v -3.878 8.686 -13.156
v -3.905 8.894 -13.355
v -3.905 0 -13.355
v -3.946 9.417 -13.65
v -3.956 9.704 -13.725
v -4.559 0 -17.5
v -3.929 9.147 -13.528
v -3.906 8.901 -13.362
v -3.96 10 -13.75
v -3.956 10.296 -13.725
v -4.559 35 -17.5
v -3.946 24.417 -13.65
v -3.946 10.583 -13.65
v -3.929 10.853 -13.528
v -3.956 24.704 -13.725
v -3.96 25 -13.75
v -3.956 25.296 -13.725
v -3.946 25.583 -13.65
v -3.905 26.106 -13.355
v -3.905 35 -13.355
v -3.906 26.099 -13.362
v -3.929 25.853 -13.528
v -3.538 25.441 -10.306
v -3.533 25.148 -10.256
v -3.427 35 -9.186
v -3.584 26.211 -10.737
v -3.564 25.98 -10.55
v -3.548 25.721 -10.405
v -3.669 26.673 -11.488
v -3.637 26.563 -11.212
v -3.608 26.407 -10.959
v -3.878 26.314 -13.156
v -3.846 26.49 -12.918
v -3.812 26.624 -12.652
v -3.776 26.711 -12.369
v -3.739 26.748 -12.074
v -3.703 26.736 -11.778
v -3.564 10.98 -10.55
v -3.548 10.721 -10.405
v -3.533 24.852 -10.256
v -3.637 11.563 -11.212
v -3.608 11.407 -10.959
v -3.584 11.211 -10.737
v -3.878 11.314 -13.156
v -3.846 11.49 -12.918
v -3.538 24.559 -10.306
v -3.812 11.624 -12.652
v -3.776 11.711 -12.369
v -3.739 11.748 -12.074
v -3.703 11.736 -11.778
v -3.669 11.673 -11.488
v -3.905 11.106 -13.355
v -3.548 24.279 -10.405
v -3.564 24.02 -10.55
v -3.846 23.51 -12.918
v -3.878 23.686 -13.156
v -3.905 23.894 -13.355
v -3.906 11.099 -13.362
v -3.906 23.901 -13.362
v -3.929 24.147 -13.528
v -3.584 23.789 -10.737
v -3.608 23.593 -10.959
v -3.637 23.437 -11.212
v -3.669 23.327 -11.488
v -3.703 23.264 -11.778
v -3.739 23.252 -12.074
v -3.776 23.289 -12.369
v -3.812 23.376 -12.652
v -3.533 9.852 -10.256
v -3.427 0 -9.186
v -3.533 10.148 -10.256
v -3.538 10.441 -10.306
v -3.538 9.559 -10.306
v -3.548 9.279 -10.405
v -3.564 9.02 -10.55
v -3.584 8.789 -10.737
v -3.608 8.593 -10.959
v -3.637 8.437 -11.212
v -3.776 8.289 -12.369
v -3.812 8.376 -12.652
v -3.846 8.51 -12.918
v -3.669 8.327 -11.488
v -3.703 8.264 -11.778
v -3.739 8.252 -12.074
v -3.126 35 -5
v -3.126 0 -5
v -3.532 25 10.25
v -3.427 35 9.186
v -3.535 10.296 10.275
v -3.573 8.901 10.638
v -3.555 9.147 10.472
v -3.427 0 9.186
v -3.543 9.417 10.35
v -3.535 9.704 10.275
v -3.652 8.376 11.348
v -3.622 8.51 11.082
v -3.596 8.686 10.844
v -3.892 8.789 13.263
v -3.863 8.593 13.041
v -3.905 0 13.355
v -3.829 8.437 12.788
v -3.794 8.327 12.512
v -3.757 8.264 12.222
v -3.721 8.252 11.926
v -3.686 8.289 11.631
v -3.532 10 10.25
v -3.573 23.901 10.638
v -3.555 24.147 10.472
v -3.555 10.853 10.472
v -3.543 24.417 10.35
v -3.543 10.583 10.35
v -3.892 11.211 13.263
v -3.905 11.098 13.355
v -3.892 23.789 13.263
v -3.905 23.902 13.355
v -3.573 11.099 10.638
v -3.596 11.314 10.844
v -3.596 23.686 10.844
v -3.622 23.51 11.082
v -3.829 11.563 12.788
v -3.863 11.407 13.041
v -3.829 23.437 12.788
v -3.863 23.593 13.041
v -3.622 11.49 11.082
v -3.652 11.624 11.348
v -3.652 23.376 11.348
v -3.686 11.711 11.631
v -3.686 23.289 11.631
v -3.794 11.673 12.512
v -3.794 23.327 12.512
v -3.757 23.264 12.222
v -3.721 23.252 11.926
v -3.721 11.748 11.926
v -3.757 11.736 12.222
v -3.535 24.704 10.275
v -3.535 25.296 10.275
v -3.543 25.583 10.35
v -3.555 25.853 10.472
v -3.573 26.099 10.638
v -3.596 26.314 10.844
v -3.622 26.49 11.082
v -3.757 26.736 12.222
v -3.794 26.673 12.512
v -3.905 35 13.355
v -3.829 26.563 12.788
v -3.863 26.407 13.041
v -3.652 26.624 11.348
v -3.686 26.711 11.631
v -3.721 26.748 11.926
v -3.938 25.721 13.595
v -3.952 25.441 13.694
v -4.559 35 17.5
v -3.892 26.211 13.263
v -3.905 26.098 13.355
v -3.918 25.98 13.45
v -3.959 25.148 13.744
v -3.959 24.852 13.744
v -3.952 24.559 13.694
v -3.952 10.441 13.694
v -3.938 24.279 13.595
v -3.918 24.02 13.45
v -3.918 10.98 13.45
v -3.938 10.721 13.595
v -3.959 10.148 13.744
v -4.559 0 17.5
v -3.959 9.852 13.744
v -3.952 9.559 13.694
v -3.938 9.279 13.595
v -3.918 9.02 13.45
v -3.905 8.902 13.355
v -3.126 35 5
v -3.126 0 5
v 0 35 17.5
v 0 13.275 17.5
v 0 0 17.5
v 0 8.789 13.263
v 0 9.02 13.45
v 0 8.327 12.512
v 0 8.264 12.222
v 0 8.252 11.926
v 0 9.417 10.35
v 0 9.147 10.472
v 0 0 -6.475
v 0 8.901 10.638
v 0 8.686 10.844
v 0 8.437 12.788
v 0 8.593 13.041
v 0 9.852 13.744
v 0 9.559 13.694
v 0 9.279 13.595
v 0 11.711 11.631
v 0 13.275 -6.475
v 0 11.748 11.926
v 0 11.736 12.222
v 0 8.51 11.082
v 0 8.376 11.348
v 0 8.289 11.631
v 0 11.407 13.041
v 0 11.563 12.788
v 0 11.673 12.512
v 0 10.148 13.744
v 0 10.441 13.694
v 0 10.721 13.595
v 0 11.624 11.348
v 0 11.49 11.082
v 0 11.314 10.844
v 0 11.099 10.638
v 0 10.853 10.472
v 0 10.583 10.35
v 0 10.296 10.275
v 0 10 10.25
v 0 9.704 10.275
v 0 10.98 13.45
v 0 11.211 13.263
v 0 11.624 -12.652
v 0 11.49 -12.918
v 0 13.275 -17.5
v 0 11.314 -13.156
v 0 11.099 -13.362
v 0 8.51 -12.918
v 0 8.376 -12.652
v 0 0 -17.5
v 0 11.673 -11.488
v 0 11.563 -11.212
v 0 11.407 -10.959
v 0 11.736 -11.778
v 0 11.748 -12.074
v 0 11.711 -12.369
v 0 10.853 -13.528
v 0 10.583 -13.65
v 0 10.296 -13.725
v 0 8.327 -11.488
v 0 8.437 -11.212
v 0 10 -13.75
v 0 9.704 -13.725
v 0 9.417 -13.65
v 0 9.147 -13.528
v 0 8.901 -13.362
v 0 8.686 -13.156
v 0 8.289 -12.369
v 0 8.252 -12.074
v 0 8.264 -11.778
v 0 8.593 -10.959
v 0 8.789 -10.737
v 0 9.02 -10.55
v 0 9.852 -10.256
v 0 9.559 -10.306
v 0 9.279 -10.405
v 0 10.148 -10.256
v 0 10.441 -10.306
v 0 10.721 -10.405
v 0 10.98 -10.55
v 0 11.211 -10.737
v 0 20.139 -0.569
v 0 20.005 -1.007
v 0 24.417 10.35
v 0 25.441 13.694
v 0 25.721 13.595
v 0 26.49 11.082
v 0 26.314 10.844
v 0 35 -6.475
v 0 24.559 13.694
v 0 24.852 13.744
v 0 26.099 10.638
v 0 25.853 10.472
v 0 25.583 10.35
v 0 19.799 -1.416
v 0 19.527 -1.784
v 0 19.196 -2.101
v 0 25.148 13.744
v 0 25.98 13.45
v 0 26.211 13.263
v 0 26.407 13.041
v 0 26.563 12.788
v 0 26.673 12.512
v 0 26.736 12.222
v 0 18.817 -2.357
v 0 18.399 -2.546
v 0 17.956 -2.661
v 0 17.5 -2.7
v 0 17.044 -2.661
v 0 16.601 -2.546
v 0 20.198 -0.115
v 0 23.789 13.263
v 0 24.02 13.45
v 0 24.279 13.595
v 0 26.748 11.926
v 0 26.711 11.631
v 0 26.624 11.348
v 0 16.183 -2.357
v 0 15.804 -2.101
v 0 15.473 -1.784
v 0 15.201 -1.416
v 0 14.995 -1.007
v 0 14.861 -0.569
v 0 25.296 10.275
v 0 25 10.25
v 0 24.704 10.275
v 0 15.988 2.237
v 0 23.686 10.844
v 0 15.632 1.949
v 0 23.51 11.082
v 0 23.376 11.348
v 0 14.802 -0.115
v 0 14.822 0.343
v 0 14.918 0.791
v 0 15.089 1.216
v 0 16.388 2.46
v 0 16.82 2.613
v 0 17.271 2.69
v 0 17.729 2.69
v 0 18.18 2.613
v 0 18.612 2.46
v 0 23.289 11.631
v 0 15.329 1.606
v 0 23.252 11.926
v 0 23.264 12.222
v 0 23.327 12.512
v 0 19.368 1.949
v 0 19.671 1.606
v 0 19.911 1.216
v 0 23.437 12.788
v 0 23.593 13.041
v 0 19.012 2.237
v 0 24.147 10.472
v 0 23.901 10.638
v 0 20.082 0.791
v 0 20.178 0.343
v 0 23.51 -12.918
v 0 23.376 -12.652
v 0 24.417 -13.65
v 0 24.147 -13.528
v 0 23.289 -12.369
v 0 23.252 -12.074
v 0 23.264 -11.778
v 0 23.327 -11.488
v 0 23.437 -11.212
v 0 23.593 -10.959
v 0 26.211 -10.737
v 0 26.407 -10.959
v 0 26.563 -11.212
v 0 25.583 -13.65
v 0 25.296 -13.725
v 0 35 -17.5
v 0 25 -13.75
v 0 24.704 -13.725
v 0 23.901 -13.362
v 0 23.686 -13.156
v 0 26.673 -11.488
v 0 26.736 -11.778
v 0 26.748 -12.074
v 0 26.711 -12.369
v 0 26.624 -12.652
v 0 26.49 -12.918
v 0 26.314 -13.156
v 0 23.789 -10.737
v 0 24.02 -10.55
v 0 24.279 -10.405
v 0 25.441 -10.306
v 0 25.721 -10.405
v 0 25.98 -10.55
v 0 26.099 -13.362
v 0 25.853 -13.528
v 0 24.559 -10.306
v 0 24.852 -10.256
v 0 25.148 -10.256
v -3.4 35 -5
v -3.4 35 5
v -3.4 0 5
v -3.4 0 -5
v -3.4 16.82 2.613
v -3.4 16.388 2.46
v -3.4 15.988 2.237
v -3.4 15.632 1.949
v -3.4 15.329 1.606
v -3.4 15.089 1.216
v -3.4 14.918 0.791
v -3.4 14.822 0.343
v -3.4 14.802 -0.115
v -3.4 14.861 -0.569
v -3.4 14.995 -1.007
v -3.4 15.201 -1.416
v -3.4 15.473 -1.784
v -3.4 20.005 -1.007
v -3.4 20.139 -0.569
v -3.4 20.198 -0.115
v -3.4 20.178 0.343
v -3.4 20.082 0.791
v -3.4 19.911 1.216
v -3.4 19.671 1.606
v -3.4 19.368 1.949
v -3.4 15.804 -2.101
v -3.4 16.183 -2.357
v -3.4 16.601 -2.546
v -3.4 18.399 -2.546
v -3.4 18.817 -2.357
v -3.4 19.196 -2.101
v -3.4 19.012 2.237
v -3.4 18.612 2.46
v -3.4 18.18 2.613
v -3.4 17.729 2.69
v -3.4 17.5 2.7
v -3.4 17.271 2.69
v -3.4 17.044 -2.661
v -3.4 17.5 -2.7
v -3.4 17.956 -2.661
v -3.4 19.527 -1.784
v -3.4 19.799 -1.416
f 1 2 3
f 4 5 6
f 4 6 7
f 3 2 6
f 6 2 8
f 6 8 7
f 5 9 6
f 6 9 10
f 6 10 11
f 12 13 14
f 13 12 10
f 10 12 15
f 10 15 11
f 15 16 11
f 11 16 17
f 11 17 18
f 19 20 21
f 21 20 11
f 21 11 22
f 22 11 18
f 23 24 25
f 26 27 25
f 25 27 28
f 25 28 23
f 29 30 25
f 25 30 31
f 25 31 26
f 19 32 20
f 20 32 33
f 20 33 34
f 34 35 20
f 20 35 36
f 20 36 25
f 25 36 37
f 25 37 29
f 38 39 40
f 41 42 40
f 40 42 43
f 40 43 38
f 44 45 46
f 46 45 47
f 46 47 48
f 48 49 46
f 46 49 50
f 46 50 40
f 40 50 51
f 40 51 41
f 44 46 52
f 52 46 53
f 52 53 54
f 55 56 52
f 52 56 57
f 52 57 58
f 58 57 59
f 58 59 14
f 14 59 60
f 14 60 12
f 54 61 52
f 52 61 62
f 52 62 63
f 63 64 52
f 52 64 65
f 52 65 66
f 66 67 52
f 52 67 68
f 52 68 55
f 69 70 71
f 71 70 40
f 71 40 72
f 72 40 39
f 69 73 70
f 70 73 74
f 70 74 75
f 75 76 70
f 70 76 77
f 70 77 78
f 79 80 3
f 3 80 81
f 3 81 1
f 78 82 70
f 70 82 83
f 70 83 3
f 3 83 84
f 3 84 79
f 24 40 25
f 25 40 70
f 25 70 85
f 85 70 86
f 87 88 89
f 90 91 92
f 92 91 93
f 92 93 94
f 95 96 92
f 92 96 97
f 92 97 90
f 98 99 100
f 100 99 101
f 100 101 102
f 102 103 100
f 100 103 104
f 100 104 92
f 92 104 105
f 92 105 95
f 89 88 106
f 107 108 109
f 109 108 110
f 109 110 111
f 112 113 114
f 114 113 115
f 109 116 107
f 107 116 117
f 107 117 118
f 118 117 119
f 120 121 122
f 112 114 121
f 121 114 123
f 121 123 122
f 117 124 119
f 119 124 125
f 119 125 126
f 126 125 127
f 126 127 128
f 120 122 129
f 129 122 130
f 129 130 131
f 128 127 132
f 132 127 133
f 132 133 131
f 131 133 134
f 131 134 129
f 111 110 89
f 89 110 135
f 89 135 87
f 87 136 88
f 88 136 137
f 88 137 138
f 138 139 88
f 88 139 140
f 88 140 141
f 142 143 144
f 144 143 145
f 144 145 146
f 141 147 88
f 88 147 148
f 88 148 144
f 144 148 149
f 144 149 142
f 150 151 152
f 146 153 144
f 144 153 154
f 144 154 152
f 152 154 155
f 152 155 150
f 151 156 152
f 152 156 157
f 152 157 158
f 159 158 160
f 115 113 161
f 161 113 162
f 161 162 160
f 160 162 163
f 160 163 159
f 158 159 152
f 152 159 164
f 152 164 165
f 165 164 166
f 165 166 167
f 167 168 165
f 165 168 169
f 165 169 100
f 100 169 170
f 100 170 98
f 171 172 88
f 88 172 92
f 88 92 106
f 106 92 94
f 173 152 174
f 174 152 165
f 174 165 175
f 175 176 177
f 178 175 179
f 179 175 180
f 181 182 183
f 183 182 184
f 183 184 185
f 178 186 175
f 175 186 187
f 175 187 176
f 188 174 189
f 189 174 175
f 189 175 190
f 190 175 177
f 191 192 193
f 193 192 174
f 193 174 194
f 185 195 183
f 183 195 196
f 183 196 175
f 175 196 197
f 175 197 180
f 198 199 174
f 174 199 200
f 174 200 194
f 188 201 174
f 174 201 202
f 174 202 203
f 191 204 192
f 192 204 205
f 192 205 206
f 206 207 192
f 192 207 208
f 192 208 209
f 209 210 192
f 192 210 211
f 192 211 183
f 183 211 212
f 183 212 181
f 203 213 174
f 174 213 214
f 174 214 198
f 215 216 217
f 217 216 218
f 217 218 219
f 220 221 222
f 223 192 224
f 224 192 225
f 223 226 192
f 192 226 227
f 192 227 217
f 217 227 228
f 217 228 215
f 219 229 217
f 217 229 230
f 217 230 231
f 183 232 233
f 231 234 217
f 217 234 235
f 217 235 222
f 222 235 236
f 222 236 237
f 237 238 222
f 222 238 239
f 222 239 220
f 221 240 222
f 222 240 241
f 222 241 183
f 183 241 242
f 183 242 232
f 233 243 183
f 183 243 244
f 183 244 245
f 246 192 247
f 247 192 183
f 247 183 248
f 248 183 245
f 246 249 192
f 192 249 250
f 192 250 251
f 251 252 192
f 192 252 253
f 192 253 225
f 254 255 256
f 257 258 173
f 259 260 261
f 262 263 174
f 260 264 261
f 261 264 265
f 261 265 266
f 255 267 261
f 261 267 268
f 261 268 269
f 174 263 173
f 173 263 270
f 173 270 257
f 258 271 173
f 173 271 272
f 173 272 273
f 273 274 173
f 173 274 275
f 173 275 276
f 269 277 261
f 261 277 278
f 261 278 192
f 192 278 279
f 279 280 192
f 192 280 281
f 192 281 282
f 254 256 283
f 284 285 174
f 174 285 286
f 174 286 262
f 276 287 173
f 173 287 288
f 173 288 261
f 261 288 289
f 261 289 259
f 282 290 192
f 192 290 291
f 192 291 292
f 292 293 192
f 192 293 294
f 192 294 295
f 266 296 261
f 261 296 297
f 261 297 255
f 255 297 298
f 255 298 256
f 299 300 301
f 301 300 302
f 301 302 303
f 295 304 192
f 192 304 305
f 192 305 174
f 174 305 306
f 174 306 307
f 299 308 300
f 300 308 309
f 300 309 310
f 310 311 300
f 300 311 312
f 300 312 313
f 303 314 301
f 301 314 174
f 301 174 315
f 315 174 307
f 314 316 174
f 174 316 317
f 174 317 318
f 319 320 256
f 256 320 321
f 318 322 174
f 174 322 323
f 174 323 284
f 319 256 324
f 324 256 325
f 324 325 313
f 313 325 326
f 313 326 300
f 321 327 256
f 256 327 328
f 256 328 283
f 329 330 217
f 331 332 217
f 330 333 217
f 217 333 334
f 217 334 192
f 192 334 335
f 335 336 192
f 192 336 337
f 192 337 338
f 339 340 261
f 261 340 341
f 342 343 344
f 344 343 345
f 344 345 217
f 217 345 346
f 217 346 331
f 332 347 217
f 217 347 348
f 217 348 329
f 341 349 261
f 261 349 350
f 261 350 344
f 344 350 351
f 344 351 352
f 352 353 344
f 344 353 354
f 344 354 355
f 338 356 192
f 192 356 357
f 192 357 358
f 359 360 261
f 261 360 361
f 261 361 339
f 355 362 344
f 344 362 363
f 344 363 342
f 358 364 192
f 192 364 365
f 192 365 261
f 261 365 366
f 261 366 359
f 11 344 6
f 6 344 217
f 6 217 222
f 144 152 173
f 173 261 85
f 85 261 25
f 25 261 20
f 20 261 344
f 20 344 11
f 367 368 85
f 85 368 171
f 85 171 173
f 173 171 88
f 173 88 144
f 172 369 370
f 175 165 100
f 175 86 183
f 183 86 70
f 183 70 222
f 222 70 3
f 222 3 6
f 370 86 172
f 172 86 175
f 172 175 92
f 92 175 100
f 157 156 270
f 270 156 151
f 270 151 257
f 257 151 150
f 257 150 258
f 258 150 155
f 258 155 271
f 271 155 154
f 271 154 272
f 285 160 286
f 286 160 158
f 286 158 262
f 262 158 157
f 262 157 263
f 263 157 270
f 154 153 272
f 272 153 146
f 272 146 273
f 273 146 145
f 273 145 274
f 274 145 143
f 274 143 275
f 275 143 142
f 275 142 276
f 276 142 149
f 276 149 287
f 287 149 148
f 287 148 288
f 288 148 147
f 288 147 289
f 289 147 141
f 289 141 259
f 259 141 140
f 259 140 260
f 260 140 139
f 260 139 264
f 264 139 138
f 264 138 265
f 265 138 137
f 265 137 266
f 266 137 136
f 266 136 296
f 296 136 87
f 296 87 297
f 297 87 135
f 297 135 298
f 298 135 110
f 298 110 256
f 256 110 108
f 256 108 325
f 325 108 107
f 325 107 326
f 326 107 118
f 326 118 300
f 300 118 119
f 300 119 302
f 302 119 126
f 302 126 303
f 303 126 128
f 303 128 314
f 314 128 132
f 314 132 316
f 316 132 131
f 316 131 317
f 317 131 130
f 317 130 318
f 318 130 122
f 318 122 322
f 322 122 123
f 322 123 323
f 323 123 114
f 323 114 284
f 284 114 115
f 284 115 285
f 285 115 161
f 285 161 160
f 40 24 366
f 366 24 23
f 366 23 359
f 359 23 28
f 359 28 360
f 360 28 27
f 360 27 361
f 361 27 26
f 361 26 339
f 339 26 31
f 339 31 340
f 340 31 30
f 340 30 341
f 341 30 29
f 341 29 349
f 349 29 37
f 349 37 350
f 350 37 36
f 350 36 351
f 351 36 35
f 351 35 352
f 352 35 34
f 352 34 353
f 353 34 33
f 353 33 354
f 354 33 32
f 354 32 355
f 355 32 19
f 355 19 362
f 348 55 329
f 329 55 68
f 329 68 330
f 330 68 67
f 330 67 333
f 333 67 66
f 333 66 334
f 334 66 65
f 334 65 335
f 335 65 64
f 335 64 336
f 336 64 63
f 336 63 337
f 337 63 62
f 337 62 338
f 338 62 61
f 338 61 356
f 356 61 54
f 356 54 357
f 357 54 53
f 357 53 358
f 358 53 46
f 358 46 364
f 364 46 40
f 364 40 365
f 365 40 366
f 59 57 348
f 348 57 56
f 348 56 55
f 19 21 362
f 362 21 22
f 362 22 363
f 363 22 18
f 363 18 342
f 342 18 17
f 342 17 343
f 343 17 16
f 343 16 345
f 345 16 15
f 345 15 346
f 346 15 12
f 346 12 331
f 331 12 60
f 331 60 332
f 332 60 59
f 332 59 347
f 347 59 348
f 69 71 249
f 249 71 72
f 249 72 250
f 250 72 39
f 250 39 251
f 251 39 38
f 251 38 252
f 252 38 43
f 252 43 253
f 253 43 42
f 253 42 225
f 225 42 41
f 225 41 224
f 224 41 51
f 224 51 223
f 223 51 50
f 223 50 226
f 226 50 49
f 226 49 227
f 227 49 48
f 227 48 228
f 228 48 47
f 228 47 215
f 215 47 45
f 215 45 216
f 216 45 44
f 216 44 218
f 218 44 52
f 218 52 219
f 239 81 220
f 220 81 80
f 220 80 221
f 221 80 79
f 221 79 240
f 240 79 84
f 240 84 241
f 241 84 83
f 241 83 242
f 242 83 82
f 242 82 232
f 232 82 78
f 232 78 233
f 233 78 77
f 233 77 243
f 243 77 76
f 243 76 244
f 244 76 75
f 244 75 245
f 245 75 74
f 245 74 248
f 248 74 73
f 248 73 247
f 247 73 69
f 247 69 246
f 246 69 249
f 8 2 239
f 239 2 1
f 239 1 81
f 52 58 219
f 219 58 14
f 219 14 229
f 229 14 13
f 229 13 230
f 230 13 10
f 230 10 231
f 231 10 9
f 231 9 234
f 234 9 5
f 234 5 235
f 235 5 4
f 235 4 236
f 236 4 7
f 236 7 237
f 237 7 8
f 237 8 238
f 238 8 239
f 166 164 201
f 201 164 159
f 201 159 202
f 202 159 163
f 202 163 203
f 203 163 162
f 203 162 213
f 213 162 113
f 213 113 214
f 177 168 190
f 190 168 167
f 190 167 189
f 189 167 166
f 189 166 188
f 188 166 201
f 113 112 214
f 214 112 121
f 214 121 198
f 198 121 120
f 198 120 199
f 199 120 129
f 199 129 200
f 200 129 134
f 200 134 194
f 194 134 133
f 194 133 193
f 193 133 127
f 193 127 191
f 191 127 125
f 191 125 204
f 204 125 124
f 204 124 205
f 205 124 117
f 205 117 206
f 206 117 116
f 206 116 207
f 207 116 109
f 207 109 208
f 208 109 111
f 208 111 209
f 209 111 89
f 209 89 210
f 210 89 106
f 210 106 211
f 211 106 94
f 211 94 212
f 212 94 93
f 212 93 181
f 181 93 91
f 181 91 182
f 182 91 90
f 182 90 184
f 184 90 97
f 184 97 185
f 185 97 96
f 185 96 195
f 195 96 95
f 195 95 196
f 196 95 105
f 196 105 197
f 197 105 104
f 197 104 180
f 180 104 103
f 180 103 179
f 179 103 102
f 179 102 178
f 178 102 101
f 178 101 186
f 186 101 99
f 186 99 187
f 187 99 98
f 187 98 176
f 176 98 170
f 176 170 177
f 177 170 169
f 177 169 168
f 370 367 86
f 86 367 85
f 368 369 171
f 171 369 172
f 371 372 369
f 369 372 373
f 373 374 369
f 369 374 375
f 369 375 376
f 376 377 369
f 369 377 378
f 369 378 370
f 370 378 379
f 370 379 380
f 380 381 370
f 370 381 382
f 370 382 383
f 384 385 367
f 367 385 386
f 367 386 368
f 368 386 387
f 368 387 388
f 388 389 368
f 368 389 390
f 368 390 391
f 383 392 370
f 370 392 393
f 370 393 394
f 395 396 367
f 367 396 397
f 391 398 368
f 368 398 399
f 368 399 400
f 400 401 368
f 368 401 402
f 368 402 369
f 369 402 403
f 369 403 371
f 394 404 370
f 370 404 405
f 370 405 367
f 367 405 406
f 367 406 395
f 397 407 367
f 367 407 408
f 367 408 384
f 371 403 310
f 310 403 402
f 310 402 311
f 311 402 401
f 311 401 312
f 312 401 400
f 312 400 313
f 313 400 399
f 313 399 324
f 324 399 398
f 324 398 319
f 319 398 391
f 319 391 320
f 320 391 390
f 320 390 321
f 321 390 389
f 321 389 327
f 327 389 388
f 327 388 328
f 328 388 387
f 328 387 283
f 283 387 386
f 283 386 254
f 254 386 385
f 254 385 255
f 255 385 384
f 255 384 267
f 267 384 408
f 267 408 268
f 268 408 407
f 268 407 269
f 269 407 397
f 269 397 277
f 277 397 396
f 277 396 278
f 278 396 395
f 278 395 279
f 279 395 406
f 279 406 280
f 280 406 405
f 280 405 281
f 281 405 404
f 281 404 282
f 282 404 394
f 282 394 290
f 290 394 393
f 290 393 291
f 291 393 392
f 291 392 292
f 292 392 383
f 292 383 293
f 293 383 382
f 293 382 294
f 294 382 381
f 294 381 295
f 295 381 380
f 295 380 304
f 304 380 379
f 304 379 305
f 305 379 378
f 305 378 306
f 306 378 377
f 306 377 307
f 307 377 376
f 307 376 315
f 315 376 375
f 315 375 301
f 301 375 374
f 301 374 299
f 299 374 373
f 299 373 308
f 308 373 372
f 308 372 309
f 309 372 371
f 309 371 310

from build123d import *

# Parameters (mm, degrees)
EXTRUDE_1_DEPTH     = 35
SKETCH_2_R          = 1.75
CUT_EXTRUDE_1_DEPTH = 40.39586793
SKETCH_3_W          = 0.8
SKETCH_3_H          = 10
EXTRUDE_2_DEPTH     = 35
SKETCH_4_R          = 2.7
CUT_EXTRUDE_2_DEPTH = 40.395868074


with BuildPart() as part:
    # Эскиз1 → Бобышка-Вытянуть1 (new body)
    with BuildSketch(Plane(origin=(0, 0, 0), x_dir=(1, 0, 0), z_dir=(0, 1, 0))):
        with BuildLine():
            Line((-4.558992206, 17.5), (0, 17.5))
            Line((0, 17.5), (0, -17.5))
            Line((0, -17.5), (-4.558992206, -17.5))
            ThreePointArc((-4.558992206, -17.5), (-3, 0), (-4.558992206, 17.5))
        make_face()
    extrude(amount=EXTRUDE_1_DEPTH)

    # Эскиз2 → Вырез-Вытянуть1 (cut, through all)
    with BuildSketch(Plane(origin=(0, 0, 0), x_dir=(0, 0, -1), z_dir=(1, 0, 0))):
        with Locations((-12, 25)):
            Circle(SKETCH_2_R)
        with Locations((12, 25)):
            Circle(SKETCH_2_R)
        with Locations((12, 10)):
            Circle(SKETCH_2_R)
        with Locations((-12, 10)):
            Circle(SKETCH_2_R)
    extrude(amount=-CUT_EXTRUDE_1_DEPTH, mode=Mode.SUBTRACT)

    # Эскиз3 → Бобышка-Вытянуть2 (add)
    with BuildSketch(Plane.XZ):
        with Locations((-3, 0)):
            Rectangle(SKETCH_3_W, SKETCH_3_H)
    extrude(amount=-EXTRUDE_2_DEPTH)

    # Эскиз4 → Вырез-Вытянуть2 (cut, through all)
    with BuildSketch(Plane(origin=(0, 0, 0), x_dir=(0, 0, -1), z_dir=(1, 0, 0))):
        with Locations((0, 17.5)):
            Circle(SKETCH_4_R)
    extrude(amount=-CUT_EXTRUDE_2_DEPTH, mode=Mode.SUBTRACT)


solid = part.part
